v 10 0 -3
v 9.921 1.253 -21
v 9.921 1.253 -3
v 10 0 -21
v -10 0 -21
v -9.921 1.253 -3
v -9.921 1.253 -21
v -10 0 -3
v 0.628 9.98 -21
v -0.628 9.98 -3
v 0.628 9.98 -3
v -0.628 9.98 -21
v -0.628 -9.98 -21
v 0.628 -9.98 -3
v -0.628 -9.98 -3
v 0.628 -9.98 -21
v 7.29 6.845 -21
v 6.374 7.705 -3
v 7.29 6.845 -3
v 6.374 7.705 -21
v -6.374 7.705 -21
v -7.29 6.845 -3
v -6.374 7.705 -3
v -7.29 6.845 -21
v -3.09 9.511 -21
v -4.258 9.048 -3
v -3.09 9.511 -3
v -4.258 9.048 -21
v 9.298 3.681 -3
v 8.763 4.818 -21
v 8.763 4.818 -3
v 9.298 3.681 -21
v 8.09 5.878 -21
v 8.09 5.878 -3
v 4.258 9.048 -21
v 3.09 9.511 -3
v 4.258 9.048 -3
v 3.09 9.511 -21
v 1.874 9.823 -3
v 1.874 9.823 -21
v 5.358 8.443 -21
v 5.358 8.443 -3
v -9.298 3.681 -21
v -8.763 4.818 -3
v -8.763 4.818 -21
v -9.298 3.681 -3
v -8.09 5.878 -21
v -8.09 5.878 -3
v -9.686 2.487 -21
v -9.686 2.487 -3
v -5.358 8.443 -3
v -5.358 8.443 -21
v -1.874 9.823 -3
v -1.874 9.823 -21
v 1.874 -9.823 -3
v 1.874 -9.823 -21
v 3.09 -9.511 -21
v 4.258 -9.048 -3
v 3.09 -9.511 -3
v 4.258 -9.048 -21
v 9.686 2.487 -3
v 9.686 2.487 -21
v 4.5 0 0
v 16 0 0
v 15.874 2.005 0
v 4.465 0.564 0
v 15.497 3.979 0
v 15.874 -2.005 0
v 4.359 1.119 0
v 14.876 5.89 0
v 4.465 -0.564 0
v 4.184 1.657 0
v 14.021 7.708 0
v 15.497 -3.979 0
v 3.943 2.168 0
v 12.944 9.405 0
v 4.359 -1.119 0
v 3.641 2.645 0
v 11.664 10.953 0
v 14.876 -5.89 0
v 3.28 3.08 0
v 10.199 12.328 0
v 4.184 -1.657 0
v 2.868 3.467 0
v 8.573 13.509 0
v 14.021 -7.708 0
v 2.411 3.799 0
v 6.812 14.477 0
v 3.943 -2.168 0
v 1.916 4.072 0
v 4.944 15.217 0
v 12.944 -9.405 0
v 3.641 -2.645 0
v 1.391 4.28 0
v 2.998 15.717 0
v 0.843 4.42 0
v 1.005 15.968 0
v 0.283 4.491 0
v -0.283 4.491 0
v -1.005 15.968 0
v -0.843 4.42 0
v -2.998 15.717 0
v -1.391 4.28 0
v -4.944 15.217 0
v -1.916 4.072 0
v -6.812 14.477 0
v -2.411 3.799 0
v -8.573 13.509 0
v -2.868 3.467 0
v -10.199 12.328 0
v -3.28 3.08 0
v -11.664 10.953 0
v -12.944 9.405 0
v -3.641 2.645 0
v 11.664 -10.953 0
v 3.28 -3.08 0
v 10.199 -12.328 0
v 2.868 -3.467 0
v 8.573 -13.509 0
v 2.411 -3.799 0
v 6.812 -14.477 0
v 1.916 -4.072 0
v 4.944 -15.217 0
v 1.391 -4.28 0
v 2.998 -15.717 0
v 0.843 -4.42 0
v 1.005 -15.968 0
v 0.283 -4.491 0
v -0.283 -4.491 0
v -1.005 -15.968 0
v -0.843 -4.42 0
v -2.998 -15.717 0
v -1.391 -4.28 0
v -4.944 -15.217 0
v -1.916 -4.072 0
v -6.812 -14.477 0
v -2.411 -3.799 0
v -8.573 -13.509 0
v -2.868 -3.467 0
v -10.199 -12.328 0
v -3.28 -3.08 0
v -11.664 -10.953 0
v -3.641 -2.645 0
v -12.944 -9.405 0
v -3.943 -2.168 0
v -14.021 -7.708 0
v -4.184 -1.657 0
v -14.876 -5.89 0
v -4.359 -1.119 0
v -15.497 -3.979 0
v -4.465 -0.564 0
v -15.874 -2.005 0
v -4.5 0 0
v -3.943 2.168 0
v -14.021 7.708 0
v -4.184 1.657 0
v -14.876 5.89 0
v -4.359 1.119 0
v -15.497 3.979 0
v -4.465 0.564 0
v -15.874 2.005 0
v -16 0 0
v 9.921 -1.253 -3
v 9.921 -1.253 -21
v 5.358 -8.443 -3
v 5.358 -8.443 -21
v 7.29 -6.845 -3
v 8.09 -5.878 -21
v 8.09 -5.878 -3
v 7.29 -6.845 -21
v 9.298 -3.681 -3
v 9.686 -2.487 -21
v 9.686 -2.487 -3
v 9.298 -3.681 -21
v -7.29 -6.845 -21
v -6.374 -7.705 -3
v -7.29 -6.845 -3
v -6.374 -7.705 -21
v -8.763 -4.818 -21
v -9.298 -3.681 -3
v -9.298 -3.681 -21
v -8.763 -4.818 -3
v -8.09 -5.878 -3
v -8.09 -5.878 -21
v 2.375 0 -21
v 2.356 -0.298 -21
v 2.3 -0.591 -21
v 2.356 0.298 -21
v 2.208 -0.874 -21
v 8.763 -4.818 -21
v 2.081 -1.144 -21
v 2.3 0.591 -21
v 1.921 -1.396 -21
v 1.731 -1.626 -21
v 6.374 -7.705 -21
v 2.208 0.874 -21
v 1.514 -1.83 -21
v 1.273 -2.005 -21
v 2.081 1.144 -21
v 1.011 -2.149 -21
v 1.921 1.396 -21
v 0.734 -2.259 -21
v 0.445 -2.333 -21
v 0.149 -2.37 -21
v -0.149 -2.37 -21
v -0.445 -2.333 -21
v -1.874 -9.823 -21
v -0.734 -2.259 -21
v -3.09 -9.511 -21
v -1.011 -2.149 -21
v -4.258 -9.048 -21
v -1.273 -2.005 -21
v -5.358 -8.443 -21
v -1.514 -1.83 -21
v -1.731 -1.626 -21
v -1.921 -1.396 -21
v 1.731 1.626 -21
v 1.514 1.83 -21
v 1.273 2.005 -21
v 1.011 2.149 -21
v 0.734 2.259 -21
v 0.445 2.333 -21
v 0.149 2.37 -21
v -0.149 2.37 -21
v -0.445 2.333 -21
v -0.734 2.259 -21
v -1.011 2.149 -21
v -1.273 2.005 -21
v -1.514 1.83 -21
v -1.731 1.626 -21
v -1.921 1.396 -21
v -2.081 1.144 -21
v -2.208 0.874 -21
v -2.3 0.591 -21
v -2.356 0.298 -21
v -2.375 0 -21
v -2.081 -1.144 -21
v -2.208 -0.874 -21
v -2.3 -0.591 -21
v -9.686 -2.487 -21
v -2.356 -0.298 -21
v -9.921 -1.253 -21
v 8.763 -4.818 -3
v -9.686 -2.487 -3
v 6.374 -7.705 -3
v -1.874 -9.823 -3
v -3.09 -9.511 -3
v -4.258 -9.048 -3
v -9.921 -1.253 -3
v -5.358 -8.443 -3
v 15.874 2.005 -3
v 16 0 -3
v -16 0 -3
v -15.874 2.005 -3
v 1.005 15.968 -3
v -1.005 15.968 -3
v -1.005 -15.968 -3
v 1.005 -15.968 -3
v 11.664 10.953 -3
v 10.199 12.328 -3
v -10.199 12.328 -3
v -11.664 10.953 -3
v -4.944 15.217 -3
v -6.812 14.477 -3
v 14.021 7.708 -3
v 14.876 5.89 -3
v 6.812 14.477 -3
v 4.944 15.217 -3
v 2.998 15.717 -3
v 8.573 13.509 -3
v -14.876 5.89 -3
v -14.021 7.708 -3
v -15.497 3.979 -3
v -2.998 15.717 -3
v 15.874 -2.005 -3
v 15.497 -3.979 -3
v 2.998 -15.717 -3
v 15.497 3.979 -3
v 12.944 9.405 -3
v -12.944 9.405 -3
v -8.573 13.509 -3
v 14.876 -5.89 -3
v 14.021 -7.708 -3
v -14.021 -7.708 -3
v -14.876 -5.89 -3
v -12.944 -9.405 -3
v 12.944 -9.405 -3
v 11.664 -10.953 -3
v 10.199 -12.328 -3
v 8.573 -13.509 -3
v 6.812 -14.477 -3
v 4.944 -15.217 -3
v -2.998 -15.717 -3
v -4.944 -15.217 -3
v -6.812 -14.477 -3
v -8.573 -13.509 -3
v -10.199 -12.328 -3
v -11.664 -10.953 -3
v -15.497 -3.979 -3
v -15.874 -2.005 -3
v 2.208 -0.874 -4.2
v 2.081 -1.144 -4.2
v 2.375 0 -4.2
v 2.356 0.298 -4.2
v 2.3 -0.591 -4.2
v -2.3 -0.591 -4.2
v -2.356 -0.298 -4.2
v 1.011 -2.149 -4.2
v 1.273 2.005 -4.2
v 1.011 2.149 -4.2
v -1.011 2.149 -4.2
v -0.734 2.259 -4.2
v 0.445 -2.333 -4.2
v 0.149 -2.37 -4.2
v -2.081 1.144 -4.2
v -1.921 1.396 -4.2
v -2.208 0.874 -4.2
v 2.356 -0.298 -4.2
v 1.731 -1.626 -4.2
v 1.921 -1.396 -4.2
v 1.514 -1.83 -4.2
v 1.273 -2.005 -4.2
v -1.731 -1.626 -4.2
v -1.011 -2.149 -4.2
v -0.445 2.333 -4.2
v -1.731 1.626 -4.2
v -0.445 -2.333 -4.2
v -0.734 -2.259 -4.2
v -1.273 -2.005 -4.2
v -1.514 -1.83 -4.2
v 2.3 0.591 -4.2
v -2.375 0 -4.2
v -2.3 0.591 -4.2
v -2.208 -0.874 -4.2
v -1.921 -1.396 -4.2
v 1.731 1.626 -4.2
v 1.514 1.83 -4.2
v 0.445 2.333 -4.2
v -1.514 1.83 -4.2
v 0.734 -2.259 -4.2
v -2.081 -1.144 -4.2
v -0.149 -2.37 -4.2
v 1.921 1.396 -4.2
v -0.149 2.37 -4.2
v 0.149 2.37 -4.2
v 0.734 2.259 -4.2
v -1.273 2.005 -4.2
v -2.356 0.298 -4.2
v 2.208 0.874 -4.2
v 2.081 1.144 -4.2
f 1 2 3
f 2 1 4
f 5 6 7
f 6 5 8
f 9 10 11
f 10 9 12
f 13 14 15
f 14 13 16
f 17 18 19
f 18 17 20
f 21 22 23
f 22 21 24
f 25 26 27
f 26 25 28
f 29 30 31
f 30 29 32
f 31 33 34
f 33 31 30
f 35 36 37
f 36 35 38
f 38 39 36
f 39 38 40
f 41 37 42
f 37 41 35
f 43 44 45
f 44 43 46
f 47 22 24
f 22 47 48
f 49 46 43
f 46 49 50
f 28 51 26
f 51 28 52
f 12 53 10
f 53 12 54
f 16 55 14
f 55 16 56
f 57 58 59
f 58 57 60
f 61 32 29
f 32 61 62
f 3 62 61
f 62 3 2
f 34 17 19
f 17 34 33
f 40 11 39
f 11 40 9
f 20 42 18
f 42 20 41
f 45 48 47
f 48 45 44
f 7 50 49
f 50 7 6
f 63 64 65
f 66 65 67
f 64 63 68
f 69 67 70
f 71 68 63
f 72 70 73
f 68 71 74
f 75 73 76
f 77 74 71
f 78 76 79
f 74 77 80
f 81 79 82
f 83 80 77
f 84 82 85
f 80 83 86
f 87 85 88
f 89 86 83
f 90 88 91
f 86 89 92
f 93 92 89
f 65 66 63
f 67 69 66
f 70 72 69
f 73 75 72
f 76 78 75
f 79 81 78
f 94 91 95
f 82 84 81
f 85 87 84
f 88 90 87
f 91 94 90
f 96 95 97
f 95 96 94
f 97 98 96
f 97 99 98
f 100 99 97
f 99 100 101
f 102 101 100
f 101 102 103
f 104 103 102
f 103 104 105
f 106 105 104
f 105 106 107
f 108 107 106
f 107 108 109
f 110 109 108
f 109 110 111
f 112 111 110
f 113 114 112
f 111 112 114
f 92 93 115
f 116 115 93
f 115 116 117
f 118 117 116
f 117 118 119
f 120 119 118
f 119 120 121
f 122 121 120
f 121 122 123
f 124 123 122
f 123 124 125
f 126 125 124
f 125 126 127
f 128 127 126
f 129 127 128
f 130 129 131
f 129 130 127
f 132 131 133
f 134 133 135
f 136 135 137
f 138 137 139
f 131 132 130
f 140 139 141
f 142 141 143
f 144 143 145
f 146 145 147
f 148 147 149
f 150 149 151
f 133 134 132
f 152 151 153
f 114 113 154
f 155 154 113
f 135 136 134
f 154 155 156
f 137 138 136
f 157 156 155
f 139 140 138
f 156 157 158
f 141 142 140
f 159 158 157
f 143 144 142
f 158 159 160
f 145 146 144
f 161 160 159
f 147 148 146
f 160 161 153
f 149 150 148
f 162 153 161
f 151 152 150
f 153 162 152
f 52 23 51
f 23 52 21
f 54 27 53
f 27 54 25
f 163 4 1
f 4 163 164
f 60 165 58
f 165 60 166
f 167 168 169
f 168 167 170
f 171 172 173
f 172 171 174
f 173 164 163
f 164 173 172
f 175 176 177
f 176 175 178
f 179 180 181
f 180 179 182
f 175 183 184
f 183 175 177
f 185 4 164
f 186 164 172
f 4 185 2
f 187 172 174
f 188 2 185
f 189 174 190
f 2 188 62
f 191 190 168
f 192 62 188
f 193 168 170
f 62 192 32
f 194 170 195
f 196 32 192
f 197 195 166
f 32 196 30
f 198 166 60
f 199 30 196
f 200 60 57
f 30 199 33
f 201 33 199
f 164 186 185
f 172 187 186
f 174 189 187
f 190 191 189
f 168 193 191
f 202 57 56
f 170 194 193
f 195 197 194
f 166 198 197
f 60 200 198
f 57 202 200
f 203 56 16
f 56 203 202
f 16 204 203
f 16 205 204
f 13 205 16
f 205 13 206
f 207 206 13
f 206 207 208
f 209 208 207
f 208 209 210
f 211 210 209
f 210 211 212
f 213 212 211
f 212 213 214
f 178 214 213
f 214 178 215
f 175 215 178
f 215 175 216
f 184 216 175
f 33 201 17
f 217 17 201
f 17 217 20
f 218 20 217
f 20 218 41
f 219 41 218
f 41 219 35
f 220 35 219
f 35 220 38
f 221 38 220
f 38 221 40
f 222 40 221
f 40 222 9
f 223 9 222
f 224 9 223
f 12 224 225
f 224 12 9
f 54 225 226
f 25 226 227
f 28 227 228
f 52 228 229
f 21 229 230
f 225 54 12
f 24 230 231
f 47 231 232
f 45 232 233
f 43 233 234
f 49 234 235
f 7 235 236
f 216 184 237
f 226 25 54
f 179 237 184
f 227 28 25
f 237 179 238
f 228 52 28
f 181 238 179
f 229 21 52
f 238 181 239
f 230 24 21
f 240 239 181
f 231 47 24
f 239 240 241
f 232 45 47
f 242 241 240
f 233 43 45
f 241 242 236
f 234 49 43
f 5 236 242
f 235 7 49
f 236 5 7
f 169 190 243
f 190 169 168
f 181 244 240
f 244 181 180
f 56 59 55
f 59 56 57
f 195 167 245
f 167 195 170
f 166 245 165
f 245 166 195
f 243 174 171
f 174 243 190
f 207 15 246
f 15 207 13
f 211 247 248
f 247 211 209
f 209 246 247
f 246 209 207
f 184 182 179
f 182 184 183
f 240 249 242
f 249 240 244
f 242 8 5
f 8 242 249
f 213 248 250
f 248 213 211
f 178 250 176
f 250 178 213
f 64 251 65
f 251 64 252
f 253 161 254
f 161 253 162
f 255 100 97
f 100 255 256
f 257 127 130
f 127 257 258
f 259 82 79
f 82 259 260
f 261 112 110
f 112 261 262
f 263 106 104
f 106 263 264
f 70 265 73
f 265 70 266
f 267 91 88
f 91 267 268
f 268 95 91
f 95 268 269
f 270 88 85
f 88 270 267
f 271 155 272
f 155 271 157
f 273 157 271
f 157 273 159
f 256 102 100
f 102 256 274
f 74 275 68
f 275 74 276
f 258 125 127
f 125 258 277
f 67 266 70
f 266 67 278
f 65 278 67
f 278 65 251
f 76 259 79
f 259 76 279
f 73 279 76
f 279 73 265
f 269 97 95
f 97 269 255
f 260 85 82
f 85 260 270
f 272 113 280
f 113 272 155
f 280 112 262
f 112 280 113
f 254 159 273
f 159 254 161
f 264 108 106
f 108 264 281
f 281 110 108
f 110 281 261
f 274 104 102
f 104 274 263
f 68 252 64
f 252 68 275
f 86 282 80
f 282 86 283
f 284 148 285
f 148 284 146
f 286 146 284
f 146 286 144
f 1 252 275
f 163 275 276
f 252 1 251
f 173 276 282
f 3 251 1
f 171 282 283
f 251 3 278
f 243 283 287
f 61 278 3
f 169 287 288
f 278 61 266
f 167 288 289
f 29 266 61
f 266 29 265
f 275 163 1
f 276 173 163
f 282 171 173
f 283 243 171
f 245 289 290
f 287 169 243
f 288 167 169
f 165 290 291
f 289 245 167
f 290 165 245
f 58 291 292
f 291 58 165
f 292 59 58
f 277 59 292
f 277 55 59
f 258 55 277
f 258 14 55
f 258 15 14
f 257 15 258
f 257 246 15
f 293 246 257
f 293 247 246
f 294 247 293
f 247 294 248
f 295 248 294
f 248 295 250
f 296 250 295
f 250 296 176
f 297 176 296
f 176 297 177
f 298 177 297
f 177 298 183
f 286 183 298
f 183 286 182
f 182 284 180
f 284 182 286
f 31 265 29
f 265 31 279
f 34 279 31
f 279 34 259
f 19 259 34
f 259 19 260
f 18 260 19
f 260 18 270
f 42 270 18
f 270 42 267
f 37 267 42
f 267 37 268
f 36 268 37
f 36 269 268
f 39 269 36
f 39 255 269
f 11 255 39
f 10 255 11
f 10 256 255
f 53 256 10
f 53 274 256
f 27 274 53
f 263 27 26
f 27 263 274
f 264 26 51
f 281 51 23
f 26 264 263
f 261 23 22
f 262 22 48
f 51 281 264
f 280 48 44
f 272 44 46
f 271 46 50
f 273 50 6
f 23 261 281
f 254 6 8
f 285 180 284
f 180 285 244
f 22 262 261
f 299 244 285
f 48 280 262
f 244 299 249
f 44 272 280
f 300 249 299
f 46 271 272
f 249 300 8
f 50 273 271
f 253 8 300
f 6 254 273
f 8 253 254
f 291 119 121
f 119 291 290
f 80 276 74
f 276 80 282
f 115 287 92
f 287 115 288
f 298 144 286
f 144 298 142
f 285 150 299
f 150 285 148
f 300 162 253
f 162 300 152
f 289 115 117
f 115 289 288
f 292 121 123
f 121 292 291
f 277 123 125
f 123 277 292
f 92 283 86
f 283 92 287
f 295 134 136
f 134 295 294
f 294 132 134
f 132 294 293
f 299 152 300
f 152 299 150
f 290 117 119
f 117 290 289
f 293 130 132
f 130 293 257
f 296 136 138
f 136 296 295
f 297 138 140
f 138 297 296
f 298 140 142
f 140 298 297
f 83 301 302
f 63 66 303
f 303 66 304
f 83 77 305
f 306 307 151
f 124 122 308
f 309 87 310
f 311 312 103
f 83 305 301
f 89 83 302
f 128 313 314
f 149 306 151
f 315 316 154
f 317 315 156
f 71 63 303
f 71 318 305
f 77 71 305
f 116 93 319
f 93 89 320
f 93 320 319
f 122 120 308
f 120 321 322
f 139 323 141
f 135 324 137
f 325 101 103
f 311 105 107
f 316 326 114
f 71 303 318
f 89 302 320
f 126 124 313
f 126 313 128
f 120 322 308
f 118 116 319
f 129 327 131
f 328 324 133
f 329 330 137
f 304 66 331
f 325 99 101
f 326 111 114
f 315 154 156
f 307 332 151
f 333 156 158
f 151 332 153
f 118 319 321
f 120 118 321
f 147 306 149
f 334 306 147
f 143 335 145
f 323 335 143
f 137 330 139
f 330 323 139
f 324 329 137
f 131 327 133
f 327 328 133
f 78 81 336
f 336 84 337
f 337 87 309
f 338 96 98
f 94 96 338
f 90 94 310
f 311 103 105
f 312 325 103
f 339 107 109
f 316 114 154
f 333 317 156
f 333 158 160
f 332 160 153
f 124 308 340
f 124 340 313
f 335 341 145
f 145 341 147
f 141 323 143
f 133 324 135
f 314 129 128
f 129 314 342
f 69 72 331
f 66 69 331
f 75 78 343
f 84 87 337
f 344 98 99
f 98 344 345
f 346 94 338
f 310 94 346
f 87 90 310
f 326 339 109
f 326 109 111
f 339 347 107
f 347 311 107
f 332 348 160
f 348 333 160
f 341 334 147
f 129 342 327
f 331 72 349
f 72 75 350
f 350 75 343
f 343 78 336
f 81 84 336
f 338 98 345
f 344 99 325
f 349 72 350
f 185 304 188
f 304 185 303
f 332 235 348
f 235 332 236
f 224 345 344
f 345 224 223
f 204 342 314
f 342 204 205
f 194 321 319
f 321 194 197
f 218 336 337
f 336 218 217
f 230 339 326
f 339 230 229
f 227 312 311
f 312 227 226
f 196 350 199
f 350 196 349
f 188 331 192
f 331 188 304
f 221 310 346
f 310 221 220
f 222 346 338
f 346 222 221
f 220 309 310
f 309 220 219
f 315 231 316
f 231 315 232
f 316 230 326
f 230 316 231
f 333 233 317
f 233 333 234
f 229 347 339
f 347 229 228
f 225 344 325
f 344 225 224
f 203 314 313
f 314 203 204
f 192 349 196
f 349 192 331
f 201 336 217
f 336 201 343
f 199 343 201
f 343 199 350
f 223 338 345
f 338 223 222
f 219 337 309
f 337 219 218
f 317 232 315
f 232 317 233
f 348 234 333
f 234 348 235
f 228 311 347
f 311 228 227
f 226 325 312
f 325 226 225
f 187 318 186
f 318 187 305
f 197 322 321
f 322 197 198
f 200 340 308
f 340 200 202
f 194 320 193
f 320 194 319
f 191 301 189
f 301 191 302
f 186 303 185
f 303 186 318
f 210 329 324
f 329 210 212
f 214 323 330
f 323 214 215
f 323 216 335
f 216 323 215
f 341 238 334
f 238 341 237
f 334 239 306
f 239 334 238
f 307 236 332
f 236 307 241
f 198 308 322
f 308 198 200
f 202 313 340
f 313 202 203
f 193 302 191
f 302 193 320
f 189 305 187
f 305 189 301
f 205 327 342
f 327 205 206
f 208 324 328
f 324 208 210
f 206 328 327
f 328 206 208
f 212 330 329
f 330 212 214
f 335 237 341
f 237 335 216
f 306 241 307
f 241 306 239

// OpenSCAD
$fn = 50;


difference() {
	union() {
		translate(v = [0, 0, -21.0000000000]) {
			cylinder(h = 21, r = 10.0000000000);
		}
		translate(v = [0, 0, -3.0000000000]) {
			cylinder(h = 3, r = 16.0000000000);
		}
	}
	union() {
		translate(v = [0, 0, 0]) {
			rotate(a = [0, 0, 0]) {
				difference() {
					union() {
						#translate(v = [0, 0, -21.0000000000]) {
							cylinder(h = 21, r = 2.2500000000);
						}
						#translate(v = [0, 0, -4.2000000000]) {
							cylinder(h = 4.2000000000, r = 10.0000000000, r1 = 2.3750000000, r2 = 4.5000000000);
						}
						#translate(v = [0, 0, -21.0000000000]) {
							cylinder(h = 21, r = 2.3750000000);
						}
						#translate(v = [0, 0, -21.0000000000]) {
							cylinder(h = 21, r = 2.2500000000);
						}
					}
					union();
				}
			}
		}
	}
}
